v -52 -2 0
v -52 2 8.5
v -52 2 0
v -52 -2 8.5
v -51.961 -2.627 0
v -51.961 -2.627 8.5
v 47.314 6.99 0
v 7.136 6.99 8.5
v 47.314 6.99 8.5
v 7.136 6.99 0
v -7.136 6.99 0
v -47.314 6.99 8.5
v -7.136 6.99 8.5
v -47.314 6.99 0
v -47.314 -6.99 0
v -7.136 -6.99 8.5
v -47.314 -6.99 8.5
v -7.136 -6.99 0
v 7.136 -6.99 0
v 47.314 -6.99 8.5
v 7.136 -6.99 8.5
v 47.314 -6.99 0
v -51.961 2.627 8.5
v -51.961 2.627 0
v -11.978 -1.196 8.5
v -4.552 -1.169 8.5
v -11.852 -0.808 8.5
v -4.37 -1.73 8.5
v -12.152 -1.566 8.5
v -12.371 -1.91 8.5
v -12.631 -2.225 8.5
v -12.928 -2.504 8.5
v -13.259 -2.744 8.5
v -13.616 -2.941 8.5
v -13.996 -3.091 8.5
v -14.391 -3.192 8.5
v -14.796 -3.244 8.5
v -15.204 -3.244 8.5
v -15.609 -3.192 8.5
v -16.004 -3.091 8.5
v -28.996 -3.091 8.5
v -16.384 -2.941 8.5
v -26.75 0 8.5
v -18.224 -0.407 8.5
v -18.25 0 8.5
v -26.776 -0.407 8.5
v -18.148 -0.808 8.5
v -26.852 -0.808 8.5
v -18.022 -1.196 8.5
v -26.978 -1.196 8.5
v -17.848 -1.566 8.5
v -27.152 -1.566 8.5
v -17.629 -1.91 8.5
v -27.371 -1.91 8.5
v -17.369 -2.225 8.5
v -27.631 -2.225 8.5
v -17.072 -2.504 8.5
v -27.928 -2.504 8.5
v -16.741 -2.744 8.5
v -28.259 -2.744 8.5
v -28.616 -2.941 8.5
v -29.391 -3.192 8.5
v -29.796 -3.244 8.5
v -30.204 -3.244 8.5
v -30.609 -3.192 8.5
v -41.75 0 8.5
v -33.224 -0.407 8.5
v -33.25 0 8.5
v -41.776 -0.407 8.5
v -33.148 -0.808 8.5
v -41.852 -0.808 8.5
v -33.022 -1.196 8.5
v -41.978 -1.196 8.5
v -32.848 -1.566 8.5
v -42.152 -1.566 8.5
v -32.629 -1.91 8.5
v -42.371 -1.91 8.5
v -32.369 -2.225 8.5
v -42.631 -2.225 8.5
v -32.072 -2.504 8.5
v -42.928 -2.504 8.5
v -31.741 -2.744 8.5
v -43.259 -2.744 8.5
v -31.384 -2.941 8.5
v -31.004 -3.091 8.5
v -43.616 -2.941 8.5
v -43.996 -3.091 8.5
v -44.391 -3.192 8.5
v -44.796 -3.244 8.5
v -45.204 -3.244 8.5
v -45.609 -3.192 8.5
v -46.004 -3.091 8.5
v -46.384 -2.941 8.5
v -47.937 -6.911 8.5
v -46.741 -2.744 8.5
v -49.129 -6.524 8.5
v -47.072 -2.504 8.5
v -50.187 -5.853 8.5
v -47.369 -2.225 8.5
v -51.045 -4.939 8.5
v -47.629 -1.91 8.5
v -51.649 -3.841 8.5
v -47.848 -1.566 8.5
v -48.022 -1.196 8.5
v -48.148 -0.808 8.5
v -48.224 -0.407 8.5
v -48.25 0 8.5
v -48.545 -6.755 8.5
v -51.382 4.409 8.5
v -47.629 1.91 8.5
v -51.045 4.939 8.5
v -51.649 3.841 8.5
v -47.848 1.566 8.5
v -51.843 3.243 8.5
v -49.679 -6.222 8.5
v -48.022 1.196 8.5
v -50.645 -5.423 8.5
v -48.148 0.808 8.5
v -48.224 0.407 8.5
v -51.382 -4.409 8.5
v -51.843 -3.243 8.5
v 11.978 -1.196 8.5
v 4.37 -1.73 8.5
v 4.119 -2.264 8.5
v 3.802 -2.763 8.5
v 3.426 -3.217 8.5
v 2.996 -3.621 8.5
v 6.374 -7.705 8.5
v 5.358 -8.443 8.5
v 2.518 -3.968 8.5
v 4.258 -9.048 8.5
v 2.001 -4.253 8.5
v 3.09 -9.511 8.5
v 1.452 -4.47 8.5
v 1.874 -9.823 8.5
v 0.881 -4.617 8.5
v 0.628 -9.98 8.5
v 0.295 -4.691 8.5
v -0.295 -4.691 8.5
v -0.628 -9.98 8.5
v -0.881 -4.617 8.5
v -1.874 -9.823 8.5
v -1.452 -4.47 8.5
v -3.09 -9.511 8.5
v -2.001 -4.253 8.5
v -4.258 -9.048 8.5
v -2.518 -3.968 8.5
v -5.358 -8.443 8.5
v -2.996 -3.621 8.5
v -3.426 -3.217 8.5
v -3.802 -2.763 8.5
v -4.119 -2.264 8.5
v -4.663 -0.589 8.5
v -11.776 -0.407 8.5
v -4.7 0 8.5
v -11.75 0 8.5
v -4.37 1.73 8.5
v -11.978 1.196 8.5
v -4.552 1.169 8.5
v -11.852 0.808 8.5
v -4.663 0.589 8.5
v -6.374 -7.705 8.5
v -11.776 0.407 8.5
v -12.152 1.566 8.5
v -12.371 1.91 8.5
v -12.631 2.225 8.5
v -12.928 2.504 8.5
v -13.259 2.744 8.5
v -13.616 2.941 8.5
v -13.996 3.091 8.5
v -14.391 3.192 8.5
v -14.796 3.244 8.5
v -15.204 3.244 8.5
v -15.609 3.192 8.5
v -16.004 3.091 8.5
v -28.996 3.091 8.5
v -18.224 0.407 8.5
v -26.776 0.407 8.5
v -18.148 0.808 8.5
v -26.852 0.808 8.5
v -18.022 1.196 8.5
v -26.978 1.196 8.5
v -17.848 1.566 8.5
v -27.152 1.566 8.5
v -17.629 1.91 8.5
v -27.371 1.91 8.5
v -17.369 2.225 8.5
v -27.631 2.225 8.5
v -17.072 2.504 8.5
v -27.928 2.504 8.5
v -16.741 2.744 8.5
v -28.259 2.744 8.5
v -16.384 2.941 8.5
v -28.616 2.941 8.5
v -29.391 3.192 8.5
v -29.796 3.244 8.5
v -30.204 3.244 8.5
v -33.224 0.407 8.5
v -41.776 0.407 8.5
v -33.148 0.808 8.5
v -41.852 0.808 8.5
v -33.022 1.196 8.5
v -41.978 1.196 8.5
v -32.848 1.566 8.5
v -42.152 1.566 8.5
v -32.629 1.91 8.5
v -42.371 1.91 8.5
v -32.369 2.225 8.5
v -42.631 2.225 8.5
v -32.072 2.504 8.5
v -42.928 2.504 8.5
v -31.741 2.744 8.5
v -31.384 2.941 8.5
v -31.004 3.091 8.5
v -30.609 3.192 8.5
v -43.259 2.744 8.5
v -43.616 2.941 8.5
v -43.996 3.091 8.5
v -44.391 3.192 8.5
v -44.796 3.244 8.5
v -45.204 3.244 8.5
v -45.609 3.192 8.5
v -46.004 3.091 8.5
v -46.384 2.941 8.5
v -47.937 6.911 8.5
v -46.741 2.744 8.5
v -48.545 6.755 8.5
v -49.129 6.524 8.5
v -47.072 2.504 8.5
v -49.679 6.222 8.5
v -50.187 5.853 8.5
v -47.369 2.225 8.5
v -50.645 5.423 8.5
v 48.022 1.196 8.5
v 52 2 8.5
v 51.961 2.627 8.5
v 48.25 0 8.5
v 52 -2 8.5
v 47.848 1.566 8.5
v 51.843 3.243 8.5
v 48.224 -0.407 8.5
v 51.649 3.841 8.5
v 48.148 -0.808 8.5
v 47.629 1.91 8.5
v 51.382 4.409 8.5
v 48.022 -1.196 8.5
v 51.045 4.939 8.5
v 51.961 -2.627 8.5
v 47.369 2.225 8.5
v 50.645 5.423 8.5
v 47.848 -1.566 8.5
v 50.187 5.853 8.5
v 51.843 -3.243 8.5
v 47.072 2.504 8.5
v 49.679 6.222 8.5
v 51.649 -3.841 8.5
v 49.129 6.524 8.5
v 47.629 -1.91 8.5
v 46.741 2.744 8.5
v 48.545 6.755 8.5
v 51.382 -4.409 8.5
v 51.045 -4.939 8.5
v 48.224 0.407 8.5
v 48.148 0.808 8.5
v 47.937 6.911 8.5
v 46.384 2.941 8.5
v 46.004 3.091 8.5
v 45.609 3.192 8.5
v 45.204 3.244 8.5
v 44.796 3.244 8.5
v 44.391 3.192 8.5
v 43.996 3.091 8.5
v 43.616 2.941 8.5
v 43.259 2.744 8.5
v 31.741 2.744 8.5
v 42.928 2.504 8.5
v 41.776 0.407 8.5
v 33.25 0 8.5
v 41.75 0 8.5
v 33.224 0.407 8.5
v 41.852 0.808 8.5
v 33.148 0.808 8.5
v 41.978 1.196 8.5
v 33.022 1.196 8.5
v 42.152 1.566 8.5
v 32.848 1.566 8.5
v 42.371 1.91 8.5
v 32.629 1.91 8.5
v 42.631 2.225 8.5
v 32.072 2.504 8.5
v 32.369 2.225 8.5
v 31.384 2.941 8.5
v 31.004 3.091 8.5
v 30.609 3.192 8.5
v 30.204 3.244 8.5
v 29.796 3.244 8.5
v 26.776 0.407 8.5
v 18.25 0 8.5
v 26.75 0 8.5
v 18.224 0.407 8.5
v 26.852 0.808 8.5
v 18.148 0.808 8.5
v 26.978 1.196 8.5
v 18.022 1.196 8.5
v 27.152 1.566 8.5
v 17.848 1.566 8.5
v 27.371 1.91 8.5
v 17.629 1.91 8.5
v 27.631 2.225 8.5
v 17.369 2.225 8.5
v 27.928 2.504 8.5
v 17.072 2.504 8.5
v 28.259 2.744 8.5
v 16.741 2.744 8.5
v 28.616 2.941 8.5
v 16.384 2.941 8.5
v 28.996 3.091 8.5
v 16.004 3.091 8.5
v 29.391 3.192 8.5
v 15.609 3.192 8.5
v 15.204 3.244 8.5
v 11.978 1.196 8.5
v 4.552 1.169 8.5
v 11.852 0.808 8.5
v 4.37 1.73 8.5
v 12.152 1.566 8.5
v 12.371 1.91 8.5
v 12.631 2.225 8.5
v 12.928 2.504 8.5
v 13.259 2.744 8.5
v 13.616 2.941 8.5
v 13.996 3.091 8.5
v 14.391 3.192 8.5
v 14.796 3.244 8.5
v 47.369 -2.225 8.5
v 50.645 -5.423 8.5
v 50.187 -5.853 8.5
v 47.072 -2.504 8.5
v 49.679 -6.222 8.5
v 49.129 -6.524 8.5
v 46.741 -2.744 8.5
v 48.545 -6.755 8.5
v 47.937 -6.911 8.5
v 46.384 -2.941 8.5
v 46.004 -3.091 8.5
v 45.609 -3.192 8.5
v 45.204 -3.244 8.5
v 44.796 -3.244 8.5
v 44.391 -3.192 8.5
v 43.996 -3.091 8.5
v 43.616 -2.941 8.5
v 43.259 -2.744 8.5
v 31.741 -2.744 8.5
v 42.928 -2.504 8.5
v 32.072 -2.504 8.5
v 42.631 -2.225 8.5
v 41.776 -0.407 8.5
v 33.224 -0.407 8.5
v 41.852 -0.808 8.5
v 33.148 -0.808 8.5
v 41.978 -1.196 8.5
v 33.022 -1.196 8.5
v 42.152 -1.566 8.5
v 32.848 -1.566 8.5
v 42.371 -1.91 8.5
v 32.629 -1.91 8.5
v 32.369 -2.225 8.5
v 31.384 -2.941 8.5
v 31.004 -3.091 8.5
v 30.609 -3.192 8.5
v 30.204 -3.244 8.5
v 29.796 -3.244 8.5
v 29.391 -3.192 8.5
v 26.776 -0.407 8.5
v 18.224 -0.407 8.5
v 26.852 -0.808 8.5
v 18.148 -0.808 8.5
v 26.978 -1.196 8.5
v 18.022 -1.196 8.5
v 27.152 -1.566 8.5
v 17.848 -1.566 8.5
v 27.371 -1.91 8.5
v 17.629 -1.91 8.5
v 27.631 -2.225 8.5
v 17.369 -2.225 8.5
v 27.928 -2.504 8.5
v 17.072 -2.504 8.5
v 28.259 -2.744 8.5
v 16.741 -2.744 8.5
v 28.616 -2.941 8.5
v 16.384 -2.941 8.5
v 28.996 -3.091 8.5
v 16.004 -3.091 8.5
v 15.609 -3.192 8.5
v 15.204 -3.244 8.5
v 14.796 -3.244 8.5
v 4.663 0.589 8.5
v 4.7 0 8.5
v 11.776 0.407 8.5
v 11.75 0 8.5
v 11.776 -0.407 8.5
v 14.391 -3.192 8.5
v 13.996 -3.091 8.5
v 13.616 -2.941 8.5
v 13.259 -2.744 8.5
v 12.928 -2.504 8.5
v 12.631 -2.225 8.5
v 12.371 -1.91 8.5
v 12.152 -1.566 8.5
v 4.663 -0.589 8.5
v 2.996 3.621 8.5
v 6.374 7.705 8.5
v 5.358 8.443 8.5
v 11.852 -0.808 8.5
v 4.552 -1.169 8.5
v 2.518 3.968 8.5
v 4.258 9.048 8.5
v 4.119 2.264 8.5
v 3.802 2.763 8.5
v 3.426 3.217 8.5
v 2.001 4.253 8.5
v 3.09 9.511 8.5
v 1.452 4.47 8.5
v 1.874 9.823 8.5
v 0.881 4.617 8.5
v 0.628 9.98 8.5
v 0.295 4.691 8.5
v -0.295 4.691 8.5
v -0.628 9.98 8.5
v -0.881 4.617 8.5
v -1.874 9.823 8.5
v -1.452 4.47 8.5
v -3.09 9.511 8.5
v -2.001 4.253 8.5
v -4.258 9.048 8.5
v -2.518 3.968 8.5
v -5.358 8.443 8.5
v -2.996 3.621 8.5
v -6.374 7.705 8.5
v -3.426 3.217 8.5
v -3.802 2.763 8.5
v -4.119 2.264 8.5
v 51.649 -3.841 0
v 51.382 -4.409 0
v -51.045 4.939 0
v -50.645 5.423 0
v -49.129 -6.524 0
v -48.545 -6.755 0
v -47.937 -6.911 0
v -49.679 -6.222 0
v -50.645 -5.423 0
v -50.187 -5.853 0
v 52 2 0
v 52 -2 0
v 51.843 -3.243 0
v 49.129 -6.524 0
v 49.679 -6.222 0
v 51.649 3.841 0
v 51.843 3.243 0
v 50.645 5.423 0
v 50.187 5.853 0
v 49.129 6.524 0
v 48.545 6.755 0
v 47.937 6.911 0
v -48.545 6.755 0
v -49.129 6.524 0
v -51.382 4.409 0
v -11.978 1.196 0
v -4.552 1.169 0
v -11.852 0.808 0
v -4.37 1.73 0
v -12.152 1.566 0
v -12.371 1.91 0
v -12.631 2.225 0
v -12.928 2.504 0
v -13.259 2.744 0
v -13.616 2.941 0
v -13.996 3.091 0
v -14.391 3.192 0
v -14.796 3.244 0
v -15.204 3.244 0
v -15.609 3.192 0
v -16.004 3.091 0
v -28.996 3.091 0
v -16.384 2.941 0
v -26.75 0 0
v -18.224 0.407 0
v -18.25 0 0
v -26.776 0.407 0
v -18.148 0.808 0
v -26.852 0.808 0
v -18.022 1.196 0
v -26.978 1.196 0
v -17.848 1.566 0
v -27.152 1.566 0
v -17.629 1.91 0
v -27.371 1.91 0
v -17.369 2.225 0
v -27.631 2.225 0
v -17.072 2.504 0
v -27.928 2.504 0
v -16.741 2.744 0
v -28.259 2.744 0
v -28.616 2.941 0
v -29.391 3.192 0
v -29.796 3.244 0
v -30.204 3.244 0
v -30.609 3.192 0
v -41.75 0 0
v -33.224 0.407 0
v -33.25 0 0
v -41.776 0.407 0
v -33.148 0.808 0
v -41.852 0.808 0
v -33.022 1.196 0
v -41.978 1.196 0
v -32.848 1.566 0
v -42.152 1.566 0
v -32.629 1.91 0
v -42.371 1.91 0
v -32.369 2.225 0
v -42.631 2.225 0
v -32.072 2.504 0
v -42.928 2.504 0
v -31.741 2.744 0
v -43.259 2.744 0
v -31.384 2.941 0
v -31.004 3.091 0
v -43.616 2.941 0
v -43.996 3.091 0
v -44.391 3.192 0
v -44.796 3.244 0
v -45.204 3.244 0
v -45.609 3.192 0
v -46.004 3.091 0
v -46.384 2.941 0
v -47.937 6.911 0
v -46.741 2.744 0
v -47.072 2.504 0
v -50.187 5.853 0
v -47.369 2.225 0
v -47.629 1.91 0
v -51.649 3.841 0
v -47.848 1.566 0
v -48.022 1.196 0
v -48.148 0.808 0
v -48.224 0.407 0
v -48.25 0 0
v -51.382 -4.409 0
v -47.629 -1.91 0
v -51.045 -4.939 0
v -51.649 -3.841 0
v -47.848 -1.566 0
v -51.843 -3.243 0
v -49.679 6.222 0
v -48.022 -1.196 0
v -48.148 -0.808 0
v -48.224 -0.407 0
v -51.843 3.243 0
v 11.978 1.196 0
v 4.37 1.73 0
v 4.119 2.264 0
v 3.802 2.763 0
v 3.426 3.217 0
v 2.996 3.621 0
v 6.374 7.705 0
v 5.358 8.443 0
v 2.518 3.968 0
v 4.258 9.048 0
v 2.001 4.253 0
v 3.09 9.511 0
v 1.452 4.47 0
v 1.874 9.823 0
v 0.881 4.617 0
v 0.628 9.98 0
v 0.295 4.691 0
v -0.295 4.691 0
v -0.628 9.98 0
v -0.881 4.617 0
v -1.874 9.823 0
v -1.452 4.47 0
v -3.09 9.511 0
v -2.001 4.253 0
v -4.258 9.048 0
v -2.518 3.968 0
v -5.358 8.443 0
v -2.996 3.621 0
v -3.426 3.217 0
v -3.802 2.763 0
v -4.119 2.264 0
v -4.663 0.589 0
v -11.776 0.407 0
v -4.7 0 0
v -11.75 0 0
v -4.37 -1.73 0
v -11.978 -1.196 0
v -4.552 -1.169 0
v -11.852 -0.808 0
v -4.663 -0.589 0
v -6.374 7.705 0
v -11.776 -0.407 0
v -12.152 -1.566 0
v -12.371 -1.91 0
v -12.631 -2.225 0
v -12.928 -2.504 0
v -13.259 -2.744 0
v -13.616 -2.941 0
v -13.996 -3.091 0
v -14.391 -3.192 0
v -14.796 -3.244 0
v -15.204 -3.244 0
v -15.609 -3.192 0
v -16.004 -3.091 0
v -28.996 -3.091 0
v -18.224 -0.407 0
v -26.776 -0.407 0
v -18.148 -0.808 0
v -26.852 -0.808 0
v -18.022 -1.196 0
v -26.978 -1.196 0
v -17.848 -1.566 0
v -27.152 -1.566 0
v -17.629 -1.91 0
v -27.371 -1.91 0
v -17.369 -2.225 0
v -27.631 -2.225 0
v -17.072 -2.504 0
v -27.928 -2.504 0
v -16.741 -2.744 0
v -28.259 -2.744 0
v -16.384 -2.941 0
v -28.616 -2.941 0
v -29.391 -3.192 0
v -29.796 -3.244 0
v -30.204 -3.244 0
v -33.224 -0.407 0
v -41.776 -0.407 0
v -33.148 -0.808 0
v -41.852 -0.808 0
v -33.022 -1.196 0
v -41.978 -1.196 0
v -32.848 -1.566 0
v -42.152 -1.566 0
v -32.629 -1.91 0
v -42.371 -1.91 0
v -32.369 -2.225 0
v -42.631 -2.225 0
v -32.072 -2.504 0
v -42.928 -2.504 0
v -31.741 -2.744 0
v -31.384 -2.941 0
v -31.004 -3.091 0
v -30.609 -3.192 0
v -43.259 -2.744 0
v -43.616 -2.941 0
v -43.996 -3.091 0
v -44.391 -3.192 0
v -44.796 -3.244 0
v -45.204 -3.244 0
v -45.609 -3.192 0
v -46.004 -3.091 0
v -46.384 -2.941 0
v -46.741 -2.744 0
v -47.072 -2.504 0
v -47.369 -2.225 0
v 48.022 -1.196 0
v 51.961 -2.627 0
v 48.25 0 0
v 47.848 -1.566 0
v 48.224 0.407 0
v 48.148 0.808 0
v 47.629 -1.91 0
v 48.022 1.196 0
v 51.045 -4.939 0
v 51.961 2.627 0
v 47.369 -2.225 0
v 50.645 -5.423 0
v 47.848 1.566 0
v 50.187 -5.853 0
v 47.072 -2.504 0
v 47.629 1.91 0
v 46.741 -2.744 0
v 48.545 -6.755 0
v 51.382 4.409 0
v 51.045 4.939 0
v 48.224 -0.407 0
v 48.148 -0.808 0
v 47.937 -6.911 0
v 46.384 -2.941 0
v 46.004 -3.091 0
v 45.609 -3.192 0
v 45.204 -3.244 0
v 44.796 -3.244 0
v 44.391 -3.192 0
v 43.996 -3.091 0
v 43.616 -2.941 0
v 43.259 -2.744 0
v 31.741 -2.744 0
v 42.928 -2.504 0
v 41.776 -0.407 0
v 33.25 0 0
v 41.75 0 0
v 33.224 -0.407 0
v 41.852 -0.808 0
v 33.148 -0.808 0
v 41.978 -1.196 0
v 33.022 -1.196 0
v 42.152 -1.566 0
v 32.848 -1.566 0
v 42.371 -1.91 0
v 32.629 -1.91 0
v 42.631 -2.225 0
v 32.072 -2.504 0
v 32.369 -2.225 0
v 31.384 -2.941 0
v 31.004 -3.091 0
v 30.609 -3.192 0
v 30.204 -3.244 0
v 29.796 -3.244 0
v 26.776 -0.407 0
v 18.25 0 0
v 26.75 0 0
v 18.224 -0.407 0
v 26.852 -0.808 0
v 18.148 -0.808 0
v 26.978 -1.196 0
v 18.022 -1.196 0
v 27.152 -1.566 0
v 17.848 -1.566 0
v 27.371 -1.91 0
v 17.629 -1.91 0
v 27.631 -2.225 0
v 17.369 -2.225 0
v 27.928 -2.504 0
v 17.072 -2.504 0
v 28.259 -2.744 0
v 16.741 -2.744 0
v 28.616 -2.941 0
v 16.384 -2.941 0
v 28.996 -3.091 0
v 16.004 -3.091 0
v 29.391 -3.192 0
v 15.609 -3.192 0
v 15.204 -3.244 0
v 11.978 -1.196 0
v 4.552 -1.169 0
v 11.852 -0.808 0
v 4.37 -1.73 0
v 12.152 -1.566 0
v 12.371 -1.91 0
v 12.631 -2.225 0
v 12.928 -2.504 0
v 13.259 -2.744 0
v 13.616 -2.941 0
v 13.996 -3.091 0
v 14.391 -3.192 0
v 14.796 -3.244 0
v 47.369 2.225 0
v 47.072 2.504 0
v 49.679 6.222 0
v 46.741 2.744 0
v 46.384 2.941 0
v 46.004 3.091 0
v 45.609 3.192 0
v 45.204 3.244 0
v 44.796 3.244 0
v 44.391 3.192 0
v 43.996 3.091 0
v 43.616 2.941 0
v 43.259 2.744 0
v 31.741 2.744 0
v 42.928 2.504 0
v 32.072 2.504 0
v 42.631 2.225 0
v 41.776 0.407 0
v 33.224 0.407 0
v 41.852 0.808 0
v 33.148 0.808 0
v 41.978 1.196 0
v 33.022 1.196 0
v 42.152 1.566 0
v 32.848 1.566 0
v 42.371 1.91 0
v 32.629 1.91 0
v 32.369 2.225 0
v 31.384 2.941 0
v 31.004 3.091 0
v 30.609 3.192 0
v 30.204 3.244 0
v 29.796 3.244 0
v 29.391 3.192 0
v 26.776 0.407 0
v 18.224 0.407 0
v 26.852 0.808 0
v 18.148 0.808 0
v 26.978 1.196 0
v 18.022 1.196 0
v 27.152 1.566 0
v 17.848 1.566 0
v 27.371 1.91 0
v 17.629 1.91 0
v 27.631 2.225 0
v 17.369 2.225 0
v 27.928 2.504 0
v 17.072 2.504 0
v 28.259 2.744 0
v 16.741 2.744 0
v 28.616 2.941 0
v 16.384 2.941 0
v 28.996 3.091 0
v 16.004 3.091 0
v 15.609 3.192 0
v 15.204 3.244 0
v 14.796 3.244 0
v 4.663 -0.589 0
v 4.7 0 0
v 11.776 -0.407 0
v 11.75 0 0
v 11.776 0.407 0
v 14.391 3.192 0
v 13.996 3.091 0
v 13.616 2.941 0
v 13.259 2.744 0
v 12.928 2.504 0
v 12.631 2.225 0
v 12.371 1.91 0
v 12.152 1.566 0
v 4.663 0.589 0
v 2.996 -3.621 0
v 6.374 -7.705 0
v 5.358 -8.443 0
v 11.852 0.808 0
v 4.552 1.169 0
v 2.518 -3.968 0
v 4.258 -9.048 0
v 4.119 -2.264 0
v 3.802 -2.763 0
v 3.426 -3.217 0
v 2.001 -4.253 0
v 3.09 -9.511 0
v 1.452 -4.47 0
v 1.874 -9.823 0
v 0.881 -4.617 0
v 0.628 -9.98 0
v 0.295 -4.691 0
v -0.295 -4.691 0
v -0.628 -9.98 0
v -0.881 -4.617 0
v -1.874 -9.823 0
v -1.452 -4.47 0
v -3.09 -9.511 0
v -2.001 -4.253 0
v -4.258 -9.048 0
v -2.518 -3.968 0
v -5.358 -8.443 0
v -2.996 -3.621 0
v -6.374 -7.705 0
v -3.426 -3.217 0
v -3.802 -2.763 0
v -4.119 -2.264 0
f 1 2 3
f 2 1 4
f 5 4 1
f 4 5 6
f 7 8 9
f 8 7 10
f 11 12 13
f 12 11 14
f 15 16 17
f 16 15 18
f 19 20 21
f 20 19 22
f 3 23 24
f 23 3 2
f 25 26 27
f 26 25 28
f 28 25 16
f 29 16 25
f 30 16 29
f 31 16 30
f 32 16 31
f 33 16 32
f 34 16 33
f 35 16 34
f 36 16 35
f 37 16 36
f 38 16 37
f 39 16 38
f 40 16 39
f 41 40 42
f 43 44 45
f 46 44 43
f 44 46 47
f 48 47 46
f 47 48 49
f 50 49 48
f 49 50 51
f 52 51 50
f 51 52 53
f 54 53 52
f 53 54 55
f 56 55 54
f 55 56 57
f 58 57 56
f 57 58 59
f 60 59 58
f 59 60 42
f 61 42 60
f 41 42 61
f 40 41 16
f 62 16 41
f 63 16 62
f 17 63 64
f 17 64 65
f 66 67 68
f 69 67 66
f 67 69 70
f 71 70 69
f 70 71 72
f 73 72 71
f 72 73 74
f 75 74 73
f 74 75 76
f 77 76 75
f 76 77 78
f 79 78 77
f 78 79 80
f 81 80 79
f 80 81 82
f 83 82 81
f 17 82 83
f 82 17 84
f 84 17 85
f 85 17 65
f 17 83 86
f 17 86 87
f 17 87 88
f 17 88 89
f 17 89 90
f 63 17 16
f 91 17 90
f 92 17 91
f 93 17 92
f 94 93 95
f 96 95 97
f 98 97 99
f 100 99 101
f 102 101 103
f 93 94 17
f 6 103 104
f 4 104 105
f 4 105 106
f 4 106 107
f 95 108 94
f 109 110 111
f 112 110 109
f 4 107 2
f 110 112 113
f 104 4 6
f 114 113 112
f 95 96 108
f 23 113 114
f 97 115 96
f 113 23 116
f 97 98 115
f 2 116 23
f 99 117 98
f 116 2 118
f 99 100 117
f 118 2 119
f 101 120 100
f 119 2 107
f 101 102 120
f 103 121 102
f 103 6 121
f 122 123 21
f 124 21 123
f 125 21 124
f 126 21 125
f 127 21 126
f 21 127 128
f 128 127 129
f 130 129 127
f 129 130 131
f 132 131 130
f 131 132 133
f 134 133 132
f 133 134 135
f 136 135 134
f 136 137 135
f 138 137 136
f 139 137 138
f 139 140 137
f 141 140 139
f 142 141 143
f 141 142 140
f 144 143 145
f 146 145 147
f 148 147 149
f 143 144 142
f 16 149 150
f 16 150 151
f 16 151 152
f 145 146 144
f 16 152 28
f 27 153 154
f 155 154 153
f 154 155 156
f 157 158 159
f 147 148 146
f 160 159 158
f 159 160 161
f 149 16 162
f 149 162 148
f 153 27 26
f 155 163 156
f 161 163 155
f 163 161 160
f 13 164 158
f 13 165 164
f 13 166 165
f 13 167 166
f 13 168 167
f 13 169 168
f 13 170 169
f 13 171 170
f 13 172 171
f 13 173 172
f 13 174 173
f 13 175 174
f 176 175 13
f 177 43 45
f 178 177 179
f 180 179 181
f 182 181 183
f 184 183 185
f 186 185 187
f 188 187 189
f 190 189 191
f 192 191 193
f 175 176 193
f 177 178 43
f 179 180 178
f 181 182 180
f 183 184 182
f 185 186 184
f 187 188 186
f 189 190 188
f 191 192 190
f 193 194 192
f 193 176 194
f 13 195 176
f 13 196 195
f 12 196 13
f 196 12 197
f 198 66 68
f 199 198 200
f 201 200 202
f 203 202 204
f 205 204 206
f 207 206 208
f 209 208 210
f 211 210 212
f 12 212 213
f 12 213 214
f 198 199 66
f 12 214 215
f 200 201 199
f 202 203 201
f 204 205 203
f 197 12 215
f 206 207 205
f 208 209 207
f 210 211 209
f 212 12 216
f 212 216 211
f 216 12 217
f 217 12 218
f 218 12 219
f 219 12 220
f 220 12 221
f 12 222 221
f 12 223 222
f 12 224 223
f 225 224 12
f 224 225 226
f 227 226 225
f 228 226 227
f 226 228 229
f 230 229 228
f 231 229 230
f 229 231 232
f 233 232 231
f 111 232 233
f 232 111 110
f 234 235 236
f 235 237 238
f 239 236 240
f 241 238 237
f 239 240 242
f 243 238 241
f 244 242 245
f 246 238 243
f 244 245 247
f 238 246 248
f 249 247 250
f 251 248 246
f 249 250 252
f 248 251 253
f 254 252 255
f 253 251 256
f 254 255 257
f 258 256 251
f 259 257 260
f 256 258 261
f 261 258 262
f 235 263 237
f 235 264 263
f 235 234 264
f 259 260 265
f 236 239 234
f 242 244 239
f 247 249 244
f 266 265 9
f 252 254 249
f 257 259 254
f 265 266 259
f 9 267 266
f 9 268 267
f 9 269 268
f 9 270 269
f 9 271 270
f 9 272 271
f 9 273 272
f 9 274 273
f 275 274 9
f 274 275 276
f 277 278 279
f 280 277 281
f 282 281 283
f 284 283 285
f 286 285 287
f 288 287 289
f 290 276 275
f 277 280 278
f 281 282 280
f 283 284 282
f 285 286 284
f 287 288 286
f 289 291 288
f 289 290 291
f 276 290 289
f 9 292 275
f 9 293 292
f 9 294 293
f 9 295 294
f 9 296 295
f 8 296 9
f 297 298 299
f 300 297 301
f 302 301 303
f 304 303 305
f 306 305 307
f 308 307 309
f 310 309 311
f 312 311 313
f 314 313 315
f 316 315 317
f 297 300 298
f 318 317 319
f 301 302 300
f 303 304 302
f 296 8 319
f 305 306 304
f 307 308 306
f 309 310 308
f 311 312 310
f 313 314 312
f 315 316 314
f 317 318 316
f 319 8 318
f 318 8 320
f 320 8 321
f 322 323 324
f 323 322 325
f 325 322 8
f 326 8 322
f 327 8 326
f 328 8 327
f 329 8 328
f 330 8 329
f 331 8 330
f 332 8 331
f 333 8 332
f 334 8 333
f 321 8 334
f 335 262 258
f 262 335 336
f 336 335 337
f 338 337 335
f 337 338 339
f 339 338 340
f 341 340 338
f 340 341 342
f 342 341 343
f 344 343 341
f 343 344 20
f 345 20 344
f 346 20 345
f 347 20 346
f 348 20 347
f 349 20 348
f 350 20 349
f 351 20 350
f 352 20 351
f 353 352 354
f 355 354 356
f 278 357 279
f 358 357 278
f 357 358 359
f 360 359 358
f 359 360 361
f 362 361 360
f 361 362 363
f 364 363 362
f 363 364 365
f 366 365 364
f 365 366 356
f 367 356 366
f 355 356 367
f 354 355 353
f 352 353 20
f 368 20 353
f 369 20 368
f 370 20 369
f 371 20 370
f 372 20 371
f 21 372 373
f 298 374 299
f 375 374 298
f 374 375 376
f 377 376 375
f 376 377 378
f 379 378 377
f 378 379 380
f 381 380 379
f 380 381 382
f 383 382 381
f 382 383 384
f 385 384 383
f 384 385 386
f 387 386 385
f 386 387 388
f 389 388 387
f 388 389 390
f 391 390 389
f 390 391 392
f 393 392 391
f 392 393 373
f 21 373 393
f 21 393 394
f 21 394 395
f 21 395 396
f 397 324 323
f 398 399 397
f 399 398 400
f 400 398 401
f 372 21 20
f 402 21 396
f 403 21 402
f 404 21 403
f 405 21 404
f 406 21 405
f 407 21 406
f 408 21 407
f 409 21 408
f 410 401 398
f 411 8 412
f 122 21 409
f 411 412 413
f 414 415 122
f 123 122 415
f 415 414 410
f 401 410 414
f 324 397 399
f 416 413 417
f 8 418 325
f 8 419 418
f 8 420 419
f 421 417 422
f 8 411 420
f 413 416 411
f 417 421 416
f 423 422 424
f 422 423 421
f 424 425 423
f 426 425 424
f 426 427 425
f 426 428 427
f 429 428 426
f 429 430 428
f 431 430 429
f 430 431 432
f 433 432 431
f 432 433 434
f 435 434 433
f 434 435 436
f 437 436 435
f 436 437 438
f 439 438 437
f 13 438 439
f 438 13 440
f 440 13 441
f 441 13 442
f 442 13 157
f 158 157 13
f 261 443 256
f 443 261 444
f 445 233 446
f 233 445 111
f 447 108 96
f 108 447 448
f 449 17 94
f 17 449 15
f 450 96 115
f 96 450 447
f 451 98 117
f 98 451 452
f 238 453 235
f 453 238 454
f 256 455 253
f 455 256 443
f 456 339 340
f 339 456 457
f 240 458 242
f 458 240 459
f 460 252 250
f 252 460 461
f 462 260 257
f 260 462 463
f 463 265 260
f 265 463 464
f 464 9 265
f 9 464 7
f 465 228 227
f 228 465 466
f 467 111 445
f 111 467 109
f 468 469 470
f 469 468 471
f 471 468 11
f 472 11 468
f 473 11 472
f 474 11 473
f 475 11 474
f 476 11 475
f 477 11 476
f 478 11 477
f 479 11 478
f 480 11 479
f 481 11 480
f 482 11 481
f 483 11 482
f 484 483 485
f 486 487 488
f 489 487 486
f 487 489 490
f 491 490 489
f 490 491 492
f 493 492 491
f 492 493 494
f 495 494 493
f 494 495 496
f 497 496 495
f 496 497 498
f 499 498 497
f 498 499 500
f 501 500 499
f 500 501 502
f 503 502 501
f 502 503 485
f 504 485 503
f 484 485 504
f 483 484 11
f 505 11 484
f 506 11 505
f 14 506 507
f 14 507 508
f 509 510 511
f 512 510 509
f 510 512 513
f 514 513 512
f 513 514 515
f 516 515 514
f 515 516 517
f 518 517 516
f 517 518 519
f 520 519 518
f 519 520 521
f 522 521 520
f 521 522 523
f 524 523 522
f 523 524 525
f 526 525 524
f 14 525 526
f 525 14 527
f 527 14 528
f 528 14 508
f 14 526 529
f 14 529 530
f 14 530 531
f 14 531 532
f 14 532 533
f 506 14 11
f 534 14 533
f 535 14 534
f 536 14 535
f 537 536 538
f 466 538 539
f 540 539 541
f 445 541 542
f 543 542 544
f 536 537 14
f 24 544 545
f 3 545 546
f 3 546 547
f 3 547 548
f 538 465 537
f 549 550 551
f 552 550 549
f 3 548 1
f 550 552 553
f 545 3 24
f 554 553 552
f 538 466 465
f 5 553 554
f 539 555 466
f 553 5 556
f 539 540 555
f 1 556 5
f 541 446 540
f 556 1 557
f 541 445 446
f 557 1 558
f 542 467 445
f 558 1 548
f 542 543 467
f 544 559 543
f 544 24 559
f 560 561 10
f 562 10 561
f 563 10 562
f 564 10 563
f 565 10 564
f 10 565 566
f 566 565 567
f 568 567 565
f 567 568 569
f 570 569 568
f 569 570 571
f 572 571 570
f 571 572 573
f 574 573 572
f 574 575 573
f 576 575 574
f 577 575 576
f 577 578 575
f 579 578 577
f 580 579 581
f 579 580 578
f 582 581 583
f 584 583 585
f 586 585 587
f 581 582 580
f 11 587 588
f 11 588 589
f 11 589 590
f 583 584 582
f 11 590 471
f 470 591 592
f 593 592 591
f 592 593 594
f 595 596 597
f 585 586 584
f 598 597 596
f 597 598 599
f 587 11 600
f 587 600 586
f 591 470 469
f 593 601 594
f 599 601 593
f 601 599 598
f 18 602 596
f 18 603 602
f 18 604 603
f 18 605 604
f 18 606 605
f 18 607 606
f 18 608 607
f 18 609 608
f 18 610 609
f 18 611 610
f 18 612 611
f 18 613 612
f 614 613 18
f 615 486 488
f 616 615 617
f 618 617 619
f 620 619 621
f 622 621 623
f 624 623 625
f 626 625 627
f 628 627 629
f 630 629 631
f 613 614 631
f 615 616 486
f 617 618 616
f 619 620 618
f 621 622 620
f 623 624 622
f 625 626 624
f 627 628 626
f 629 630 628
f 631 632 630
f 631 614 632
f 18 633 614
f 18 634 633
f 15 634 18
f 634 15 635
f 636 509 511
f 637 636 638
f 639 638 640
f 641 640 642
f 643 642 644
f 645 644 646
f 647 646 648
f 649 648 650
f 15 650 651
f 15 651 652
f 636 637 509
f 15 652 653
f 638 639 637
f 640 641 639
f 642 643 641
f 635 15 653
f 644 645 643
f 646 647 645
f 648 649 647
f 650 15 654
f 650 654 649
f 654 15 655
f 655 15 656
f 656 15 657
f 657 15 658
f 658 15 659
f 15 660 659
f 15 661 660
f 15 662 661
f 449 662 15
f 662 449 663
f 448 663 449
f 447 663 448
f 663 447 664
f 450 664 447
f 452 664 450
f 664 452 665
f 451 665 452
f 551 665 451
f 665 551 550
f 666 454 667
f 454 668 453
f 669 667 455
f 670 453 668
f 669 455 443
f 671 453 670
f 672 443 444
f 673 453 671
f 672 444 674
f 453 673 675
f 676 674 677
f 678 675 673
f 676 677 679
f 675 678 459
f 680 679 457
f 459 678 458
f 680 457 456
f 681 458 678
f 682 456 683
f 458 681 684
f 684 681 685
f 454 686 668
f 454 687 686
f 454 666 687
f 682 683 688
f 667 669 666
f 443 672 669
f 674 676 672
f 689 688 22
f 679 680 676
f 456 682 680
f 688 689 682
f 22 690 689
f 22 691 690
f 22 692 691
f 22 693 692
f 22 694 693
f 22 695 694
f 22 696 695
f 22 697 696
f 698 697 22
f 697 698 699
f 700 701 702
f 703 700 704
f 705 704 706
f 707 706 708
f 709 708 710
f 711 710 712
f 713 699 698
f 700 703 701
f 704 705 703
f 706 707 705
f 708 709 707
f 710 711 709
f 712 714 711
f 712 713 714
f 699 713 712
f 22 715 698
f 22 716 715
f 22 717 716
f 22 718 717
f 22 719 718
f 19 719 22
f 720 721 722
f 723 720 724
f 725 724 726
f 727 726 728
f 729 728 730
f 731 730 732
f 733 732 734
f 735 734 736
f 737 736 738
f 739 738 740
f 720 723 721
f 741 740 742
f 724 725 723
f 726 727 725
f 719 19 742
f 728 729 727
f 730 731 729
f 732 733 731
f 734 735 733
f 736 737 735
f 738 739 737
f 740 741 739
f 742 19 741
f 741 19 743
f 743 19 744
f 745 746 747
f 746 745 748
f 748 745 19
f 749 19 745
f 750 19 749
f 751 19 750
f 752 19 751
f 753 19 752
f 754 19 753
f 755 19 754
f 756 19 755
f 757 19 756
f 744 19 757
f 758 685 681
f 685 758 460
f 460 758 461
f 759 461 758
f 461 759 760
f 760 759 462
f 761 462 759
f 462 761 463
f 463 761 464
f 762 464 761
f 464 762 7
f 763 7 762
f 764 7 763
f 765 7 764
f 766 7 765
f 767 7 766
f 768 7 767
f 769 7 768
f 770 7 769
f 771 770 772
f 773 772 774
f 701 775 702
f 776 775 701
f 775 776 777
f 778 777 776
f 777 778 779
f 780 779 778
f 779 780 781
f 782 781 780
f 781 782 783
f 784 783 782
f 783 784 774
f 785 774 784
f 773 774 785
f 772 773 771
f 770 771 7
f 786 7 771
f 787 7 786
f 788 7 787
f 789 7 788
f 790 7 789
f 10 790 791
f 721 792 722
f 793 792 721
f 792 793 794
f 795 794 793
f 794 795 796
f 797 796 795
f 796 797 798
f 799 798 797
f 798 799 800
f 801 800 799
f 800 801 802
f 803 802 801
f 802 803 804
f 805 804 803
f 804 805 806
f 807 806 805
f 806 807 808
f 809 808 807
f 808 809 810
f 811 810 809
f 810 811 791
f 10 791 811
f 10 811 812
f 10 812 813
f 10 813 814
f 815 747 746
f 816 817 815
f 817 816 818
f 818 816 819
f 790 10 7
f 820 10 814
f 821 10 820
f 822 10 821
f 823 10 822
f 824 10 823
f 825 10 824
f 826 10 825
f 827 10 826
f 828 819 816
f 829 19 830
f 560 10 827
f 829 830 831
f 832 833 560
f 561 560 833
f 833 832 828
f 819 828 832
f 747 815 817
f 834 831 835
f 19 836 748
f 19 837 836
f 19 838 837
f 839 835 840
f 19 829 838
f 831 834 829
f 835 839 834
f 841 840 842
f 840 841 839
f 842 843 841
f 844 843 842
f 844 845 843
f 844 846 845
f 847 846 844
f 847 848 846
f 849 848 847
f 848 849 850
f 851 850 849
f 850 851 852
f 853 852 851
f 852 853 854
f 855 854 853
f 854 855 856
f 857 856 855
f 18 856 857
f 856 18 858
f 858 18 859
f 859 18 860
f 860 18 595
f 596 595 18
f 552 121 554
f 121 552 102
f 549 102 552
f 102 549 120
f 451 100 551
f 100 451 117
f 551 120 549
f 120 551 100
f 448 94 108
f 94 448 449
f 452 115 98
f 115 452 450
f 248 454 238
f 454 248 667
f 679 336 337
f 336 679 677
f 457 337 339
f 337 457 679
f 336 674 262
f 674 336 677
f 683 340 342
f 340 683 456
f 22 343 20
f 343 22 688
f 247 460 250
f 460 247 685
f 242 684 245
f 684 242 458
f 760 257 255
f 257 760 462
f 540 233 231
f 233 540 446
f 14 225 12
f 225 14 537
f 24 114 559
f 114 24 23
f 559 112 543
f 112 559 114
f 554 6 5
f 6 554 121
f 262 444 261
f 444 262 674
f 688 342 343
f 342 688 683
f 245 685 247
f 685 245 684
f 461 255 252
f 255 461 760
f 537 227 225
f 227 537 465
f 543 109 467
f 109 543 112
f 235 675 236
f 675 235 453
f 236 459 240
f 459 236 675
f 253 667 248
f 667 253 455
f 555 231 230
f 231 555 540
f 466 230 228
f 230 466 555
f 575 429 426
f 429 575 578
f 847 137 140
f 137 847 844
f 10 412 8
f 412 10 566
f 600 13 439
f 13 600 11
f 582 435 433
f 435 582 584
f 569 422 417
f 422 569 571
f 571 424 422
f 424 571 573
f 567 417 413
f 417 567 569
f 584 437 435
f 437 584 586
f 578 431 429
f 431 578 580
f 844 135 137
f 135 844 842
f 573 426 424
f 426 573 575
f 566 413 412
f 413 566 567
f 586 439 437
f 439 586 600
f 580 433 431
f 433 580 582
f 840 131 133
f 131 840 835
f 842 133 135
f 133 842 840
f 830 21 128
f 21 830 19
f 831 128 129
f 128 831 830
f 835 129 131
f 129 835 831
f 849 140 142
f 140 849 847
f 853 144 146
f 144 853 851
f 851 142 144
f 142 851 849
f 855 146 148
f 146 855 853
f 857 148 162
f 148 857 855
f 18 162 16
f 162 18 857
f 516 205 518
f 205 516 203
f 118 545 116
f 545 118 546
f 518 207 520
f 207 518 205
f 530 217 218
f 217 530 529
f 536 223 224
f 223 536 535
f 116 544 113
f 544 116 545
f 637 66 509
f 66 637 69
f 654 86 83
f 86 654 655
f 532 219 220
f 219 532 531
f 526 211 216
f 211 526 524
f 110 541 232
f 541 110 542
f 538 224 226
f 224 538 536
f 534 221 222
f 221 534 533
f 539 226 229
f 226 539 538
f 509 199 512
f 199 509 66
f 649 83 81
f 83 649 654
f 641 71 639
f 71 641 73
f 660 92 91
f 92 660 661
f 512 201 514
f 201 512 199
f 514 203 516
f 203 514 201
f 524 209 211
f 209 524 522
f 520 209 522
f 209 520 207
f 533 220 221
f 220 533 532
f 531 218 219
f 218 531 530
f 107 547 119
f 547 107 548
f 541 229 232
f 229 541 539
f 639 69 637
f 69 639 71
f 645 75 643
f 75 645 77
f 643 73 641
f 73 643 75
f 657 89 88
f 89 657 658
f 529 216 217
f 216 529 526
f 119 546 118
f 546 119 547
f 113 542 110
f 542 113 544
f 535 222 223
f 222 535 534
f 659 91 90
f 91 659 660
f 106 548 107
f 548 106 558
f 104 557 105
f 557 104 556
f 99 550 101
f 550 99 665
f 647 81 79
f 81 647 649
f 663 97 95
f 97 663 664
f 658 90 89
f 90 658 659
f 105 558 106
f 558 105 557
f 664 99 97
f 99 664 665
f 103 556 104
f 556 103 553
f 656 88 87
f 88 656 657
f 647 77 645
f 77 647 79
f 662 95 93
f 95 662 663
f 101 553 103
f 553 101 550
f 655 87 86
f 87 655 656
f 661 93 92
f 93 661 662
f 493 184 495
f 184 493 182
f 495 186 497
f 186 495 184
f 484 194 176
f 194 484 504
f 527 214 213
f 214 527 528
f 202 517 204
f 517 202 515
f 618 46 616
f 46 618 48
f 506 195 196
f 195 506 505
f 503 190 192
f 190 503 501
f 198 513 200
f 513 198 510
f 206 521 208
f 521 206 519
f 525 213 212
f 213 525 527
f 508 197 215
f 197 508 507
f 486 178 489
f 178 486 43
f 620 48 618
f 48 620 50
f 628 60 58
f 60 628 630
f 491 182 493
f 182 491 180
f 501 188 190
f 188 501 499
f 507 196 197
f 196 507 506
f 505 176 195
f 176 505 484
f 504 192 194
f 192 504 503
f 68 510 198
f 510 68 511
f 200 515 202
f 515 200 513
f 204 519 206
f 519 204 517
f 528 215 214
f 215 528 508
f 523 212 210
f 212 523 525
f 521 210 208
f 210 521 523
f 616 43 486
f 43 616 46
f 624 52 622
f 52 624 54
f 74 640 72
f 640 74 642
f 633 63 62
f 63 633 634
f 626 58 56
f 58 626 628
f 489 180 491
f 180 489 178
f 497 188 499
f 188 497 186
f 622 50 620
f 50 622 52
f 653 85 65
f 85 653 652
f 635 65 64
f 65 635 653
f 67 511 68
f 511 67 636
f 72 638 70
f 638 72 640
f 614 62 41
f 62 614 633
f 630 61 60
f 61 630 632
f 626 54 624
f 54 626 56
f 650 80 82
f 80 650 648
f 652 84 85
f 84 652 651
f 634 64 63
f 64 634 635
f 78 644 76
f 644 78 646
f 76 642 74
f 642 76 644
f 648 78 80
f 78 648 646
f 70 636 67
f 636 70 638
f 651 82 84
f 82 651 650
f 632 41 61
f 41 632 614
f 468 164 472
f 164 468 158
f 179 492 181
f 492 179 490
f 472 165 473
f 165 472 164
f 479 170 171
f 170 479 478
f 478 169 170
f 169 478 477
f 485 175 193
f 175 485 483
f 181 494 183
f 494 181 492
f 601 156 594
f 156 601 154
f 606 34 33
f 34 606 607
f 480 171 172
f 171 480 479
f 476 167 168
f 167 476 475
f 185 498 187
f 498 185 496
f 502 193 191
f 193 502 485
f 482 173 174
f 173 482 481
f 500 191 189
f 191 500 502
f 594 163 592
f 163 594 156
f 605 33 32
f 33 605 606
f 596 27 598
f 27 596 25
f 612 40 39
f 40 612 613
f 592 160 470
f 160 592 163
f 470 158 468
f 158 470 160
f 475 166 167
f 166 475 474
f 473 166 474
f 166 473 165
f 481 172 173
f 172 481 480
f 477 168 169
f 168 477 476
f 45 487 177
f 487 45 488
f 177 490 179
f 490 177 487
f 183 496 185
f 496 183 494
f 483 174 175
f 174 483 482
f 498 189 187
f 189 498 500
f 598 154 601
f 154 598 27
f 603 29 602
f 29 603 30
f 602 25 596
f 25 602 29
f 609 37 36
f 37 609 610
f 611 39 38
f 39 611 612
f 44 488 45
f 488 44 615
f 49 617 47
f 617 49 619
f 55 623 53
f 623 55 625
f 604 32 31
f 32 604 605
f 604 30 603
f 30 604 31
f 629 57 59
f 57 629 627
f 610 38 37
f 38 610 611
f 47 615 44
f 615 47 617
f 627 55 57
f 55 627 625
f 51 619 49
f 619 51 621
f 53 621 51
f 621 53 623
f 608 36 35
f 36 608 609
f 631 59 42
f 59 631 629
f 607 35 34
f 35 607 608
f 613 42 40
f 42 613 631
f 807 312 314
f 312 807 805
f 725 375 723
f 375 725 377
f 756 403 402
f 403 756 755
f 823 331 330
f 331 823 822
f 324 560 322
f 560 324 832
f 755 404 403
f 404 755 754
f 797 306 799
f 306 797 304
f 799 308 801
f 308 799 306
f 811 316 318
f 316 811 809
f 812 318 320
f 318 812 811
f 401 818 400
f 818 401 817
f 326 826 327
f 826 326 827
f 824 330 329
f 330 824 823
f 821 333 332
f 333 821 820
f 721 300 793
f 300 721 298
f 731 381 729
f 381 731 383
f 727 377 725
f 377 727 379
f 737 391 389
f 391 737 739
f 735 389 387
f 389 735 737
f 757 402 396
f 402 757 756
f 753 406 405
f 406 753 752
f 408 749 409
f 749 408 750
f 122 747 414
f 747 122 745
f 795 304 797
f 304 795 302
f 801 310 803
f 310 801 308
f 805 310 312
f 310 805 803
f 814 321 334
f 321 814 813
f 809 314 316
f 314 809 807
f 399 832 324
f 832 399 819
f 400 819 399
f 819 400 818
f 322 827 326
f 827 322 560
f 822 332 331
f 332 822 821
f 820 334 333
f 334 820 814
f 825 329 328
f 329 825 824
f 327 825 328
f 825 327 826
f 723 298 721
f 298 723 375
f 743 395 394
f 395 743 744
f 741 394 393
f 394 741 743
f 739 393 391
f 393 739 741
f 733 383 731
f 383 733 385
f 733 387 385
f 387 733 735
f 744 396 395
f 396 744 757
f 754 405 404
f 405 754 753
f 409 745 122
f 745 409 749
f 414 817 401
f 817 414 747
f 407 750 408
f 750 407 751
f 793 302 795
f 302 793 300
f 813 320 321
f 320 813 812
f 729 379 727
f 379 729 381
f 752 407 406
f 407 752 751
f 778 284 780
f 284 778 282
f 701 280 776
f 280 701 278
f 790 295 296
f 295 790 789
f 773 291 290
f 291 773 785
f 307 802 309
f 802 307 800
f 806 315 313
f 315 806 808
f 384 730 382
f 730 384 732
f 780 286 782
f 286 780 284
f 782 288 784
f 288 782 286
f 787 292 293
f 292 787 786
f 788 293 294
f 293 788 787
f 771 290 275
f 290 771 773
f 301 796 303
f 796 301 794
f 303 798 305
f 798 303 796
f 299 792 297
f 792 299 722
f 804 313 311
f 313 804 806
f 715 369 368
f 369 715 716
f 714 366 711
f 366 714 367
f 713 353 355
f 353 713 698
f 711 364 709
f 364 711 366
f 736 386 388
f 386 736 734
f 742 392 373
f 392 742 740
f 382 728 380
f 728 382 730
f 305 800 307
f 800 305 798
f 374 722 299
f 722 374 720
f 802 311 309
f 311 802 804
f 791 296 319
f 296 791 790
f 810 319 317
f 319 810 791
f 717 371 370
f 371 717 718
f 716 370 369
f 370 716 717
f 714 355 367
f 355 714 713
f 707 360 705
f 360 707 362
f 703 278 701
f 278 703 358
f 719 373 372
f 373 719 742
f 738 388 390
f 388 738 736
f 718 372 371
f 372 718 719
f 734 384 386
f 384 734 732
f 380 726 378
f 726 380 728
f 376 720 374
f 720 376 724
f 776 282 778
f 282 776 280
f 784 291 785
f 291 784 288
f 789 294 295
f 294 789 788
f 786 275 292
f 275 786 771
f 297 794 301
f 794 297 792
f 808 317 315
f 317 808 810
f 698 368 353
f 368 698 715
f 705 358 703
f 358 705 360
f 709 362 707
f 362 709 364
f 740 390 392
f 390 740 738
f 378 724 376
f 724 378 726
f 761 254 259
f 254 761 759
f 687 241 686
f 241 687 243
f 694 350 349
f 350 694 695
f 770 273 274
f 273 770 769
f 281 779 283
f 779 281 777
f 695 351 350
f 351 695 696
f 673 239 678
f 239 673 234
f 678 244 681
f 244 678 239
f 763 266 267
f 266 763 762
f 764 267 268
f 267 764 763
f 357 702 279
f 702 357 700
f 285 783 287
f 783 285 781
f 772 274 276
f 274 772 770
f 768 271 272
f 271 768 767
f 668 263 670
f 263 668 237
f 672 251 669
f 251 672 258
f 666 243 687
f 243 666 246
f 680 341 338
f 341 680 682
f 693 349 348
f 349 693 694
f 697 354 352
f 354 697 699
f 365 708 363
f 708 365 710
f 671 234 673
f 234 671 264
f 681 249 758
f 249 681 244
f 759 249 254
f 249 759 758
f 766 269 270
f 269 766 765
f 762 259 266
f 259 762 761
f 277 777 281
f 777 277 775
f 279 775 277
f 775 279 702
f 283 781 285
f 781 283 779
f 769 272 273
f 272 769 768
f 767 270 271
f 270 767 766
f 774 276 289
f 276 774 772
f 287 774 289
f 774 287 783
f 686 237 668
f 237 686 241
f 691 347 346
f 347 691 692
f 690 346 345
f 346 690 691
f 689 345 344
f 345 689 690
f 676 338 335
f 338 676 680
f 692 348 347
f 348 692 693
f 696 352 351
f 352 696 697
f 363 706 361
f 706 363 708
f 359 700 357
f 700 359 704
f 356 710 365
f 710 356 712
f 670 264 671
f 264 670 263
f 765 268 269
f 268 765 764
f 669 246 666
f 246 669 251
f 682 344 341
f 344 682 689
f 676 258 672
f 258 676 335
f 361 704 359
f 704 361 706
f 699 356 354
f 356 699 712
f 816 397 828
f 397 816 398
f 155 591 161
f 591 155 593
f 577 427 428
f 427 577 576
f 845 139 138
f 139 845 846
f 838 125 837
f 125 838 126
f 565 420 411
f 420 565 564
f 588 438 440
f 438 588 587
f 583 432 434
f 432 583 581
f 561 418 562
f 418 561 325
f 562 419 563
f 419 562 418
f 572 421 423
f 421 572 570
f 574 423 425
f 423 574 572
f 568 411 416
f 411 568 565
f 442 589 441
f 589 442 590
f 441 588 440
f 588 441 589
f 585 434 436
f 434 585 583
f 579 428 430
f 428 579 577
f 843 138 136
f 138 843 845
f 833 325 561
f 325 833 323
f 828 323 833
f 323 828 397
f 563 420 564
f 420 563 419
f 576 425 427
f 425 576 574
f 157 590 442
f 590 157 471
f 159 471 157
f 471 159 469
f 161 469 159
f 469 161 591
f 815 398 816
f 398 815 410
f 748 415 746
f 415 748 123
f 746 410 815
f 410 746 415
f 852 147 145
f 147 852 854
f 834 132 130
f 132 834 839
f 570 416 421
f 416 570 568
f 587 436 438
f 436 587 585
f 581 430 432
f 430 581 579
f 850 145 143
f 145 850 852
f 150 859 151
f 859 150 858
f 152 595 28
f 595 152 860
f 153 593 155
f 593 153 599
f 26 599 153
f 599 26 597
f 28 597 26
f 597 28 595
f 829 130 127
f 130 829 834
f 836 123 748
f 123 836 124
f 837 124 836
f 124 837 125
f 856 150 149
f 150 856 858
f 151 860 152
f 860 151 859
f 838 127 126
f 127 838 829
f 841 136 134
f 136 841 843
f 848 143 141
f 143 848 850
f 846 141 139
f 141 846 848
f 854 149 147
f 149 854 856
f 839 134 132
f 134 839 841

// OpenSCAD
$fn = 50;


difference() {
	union() {
		translate(v = [0, 0, 0]) {
			rotate(a = [0, 0, 0]) {
				hull() {
					translate(v = [-47.0000000000, 2.0000000000, 0]) {
						rotate(a = [0, 0, 0]) {
							translate(v = [0, 0, 0]) {
								rotate(a = [0, 0, 0]) {
									cylinder(h = 8.5000000000, r = 5);
								}
							}
						}
					}
					translate(v = [47.0000000000, 2.0000000000, 0]) {
						rotate(a = [0, 0, 0]) {
							translate(v = [0, 0, 0]) {
								rotate(a = [0, 0, 0]) {
									cylinder(h = 8.5000000000, r = 5);
								}
							}
						}
					}
					translate(v = [-47.0000000000, -2.0000000000, 0]) {
						rotate(a = [0, 0, 0]) {
							translate(v = [0, 0, 0]) {
								rotate(a = [0, 0, 0]) {
									cylinder(h = 8.5000000000, r = 5);
								}
							}
						}
					}
					translate(v = [47.0000000000, -2.0000000000, 0]) {
						rotate(a = [0, 0, 0]) {
							translate(v = [0, 0, 0]) {
								rotate(a = [0, 0, 0]) {
									cylinder(h = 8.5000000000, r = 5);
								}
							}
						}
					}
				}
			}
		}
		translate(v = [0, 0, 0.0000000000]) {
			rotate(a = [0, 0, 0]) {
				cylinder(h = 8.5000000000, r = 10.0000000000);
			}
		}
	}
	union() {
		translate(v = [-45.0000000000, 0.0000000000, 0]) {
			rotate(a = [0, 0, 0]) {
				translate(v = [0, 0, -50]) {
					rotate(a = [0, 0, 0]) {
						cylinder(h = 100, r = 3.2500000000);
					}
				}
			}
		}
		translate(v = [-30.0000000000, 0.0000000000, 0]) {
			rotate(a = [0, 0, 0]) {
				translate(v = [0, 0, -50]) {
					rotate(a = [0, 0, 0]) {
						cylinder(h = 100, r = 3.2500000000);
					}
				}
			}
		}
		translate(v = [-15.0000000000, 0.0000000000, 0]) {
			rotate(a = [0, 0, 0]) {
				translate(v = [0, 0, -50]) {
					rotate(a = [0, 0, 0]) {
						cylinder(h = 100, r = 3.2500000000);
					}
				}
			}
		}
		translate(v = [0.0000000000, 0.0000000000, 0]) {
			rotate(a = [0, 0, 0]) {
				translate(v = [0, 0, -50]) {
					rotate(a = [0, 0, 0]) {
						cylinder(h = 100, r = 3.2500000000);
					}
				}
			}
		}
		translate(v = [15.0000000000, 0.0000000000, 0]) {
			rotate(a = [0, 0, 0]) {
				translate(v = [0, 0, -50]) {
					rotate(a = [0, 0, 0]) {
						cylinder(h = 100, r = 3.2500000000);
					}
				}
			}
		}
		translate(v = [30.0000000000, 0.0000000000, 0]) {
			rotate(a = [0, 0, 0]) {
				translate(v = [0, 0, -50]) {
					rotate(a = [0, 0, 0]) {
						cylinder(h = 100, r = 3.2500000000);
					}
				}
			}
		}
		translate(v = [45.0000000000, 0.0000000000, 0]) {
			rotate(a = [0, 0, 0]) {
				translate(v = [0, 0, -50]) {
					rotate(a = [0, 0, 0]) {
						cylinder(h = 100, r = 3.2500000000);
					}
				}
			}
		}
		translate(v = [0, 0, -125.0000000000]) {
			rotate(a = [0, 0, 0]) {
				cylinder(h = 250, r = 4.7000000000);
			}
		}
	}
}
